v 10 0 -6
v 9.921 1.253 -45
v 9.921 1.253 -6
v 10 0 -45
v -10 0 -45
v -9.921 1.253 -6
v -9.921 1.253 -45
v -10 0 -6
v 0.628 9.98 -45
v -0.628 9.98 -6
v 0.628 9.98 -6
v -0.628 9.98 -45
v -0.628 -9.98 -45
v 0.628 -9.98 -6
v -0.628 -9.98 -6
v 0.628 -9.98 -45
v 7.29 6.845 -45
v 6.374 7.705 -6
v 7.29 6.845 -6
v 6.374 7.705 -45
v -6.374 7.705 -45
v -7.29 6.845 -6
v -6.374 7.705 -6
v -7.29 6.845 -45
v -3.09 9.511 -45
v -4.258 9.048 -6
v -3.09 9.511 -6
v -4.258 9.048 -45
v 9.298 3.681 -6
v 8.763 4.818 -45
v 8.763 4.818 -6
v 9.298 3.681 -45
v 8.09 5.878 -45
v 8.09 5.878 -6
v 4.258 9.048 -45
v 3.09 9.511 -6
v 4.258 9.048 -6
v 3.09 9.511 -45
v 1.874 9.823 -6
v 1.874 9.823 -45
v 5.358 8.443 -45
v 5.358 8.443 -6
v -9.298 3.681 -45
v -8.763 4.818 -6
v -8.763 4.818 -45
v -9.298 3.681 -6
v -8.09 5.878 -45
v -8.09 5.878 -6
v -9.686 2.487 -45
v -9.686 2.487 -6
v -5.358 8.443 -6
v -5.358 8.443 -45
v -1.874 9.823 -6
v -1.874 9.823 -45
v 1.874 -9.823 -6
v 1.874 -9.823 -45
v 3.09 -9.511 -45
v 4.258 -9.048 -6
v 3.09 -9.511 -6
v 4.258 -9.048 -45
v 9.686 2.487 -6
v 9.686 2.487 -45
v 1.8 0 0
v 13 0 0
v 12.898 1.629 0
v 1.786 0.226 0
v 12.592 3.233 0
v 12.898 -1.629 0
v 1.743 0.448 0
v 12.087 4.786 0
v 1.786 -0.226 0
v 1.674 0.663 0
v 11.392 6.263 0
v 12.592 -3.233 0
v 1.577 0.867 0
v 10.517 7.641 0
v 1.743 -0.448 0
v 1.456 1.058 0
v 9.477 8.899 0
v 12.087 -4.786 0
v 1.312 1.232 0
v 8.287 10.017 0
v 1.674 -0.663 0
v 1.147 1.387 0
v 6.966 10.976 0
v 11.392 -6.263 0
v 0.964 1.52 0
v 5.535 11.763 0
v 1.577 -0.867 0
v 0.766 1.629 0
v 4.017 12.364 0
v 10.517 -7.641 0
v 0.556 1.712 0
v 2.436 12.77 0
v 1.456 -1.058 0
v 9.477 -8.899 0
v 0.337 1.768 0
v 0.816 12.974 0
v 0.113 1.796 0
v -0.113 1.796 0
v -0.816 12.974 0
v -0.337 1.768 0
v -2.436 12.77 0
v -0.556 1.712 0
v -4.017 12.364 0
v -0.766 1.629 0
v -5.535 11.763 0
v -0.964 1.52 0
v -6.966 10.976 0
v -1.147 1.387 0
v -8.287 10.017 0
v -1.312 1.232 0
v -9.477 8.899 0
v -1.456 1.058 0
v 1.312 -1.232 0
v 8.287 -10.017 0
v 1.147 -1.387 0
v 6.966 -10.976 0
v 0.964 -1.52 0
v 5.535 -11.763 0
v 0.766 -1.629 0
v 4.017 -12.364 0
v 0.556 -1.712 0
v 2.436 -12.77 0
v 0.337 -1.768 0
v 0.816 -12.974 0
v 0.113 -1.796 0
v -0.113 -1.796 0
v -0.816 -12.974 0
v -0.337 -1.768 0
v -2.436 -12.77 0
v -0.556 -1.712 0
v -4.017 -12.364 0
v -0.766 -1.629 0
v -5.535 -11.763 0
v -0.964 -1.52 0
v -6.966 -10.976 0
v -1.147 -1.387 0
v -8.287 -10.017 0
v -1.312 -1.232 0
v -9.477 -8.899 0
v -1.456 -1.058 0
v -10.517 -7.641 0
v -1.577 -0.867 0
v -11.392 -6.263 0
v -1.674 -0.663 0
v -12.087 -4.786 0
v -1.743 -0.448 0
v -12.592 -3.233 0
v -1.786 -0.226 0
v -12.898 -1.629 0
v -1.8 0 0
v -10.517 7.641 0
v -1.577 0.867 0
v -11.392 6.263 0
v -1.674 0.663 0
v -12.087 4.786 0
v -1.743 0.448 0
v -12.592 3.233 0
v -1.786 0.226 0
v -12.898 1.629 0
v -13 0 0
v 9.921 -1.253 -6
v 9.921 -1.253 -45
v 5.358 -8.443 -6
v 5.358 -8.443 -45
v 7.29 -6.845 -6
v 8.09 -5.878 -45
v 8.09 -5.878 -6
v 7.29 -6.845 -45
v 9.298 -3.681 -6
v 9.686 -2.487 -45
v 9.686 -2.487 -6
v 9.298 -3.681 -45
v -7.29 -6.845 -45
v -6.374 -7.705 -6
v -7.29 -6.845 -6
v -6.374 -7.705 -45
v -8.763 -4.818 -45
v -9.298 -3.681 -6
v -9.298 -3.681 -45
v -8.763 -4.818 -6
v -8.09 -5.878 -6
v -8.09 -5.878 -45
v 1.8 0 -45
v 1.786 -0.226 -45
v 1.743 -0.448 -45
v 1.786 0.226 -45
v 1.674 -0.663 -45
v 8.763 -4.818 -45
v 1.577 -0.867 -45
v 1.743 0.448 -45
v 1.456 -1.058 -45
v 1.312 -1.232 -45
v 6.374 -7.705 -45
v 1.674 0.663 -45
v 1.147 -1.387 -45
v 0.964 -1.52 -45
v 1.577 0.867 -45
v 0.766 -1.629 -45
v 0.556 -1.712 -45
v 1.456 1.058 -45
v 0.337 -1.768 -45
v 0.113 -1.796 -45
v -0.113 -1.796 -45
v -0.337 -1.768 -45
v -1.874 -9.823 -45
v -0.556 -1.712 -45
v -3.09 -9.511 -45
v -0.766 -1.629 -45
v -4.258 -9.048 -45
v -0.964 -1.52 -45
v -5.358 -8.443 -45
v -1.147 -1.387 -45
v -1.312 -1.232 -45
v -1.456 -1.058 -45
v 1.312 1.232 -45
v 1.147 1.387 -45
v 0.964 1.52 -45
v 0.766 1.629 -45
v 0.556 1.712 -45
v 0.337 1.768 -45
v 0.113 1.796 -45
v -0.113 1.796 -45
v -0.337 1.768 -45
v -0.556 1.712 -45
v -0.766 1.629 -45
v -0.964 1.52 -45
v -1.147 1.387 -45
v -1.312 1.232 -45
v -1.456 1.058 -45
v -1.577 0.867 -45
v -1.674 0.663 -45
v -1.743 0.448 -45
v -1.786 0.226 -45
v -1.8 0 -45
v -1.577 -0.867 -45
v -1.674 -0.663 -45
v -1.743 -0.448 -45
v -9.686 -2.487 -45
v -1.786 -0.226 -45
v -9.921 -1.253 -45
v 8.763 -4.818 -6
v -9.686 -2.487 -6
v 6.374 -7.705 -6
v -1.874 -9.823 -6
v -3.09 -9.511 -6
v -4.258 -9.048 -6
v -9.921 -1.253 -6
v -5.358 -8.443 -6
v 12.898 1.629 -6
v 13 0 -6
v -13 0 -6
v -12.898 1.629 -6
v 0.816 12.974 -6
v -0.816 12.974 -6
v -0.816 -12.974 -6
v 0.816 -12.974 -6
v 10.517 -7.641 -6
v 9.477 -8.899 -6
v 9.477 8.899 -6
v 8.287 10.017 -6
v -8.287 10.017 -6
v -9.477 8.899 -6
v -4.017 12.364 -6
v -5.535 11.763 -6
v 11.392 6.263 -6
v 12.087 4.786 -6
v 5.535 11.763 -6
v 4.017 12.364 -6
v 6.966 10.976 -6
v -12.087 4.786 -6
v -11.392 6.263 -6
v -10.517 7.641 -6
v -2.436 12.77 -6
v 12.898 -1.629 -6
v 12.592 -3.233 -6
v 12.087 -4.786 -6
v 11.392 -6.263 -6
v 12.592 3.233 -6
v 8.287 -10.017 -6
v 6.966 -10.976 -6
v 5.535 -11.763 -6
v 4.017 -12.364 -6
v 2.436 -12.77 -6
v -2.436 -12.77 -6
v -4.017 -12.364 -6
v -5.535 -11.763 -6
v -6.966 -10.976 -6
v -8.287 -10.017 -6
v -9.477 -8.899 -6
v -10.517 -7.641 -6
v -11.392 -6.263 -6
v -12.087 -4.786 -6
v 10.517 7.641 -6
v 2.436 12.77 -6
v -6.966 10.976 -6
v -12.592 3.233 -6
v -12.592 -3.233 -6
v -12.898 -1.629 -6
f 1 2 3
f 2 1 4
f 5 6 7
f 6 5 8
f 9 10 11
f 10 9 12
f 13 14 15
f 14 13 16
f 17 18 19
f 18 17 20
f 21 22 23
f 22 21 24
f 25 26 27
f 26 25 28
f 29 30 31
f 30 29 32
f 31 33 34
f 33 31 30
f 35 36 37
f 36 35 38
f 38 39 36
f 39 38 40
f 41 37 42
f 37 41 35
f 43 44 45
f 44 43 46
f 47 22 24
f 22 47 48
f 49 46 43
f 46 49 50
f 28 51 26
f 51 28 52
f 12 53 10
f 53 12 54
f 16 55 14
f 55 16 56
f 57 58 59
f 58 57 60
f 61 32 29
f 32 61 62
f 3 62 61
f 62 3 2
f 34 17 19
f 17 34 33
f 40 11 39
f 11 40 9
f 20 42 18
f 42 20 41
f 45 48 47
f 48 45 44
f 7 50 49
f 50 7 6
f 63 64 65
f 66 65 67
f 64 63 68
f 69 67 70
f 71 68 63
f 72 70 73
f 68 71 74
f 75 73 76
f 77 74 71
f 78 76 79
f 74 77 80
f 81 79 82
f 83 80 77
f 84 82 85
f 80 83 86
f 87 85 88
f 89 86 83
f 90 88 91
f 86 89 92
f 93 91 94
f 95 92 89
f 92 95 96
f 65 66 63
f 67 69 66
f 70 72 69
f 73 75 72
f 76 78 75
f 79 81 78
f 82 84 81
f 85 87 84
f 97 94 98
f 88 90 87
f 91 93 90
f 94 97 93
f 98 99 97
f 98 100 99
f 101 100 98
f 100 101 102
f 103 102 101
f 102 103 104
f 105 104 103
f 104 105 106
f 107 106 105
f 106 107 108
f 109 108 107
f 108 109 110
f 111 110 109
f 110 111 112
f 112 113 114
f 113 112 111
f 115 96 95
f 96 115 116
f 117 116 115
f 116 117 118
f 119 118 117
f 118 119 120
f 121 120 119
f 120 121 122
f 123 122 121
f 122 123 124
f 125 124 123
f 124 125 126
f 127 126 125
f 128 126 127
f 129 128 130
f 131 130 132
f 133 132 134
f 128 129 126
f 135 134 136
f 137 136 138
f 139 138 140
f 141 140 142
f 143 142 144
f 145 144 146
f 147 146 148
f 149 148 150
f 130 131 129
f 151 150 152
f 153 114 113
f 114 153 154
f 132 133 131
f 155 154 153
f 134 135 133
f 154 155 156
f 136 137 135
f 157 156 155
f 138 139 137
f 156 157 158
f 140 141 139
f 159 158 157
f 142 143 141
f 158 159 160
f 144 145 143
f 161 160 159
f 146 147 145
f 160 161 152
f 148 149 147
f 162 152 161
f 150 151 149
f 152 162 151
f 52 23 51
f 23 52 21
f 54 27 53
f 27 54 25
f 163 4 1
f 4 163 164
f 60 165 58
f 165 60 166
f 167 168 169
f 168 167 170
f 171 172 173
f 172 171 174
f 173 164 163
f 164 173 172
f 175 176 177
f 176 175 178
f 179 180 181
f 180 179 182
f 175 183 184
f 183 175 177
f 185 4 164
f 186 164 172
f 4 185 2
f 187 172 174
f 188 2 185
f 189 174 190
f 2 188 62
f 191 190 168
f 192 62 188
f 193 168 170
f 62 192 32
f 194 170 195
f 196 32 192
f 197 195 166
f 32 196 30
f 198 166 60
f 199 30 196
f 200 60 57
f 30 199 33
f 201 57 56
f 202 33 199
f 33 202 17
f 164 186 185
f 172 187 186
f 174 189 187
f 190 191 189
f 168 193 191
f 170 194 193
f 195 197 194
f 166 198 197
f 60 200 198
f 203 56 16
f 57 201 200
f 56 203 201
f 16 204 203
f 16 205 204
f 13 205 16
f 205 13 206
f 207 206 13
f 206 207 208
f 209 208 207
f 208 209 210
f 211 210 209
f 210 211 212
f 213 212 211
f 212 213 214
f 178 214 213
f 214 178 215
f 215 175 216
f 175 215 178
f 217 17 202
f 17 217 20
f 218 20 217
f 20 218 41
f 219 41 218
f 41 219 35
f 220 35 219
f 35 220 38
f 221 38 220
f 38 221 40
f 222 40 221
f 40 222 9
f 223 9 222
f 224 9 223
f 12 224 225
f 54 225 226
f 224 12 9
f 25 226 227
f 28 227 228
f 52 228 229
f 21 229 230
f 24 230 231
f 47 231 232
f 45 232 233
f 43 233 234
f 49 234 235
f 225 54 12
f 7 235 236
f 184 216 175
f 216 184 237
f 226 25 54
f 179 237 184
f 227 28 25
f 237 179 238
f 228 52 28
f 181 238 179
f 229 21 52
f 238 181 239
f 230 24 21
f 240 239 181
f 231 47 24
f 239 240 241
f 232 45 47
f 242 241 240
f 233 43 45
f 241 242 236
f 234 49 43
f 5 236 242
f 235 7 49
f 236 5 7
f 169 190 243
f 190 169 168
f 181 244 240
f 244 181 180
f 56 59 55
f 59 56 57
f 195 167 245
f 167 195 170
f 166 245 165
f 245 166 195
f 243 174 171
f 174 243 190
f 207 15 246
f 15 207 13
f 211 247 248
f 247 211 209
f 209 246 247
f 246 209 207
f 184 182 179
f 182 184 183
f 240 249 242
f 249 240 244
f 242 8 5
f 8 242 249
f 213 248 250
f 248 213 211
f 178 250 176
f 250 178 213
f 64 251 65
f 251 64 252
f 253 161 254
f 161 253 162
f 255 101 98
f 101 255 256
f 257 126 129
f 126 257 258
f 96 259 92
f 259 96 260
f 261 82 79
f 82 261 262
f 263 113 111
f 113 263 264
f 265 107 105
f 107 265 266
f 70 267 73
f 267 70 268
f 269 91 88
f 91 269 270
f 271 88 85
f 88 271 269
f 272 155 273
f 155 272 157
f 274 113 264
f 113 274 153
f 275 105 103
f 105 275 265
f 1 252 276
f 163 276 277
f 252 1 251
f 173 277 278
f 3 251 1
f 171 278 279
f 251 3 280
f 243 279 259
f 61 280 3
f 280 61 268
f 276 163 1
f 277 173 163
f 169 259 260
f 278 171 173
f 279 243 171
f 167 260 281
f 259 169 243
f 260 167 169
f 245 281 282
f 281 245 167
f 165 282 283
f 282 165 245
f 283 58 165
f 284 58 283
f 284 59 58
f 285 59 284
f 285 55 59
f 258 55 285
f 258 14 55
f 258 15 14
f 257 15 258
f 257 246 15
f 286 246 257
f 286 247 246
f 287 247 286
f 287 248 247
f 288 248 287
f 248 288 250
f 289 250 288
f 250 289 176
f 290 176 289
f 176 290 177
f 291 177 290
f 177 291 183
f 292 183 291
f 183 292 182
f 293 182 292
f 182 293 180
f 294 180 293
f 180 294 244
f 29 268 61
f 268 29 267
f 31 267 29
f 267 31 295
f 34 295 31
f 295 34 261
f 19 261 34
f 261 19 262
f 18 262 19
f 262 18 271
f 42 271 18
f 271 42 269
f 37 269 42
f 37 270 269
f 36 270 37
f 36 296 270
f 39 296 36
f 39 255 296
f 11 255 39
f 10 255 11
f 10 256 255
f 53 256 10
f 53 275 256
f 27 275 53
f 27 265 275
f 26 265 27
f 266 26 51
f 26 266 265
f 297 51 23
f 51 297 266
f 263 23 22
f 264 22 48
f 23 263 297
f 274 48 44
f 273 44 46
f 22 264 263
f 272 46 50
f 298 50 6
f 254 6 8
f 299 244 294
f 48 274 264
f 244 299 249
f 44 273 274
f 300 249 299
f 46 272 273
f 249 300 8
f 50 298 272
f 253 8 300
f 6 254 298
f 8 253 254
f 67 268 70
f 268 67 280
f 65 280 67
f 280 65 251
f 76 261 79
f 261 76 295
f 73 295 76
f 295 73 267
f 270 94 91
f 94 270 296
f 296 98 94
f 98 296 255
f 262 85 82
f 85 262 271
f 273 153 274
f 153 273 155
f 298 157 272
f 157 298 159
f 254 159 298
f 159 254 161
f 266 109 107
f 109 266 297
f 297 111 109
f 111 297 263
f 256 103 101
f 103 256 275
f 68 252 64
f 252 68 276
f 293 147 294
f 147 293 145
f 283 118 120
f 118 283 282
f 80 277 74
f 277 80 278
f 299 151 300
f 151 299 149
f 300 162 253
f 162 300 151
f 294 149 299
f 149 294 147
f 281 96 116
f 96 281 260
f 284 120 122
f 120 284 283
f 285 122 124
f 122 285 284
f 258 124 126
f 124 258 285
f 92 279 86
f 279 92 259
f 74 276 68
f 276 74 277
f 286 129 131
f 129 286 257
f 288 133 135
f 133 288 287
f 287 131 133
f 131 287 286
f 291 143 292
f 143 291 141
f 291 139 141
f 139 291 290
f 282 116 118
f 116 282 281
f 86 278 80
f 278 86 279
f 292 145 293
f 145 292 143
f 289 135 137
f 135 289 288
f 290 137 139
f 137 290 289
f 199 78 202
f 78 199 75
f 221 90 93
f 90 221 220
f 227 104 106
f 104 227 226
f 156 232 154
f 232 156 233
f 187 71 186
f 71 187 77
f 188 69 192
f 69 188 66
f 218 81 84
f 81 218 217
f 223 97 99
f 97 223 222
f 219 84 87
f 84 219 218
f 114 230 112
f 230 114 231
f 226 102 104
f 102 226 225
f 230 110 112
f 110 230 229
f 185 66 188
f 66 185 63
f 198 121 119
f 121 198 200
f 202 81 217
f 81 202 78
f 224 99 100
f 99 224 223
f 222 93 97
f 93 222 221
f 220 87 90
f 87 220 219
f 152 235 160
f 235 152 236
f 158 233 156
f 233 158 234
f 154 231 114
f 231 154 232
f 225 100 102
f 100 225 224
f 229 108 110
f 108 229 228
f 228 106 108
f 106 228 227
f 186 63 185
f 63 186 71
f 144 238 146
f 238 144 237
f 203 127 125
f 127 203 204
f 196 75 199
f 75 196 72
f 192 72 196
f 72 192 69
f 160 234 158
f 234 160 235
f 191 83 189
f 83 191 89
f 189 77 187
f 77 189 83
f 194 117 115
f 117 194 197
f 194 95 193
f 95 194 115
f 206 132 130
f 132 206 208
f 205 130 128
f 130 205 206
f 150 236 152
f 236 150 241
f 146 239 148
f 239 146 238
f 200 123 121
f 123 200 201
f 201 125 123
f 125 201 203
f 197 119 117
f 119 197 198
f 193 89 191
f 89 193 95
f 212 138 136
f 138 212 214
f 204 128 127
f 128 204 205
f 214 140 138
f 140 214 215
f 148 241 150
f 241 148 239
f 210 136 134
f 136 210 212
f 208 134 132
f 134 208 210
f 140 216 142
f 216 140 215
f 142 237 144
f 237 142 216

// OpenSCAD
$fn = 50;


difference() {
	union() {
		translate(v = [0, 0, -45.0000000000]) {
			cylinder(h = 45, r = 10.0000000000);
		}
		translate(v = [0, 0, -6.0000000000]) {
			cylinder(h = 6, r = 13.0000000000);
		}
	}
	union() {
		#translate(v = [0, 0, -45]) {
			cylinder(h = 45, r = 1.8000000000);
		}
	}
}
